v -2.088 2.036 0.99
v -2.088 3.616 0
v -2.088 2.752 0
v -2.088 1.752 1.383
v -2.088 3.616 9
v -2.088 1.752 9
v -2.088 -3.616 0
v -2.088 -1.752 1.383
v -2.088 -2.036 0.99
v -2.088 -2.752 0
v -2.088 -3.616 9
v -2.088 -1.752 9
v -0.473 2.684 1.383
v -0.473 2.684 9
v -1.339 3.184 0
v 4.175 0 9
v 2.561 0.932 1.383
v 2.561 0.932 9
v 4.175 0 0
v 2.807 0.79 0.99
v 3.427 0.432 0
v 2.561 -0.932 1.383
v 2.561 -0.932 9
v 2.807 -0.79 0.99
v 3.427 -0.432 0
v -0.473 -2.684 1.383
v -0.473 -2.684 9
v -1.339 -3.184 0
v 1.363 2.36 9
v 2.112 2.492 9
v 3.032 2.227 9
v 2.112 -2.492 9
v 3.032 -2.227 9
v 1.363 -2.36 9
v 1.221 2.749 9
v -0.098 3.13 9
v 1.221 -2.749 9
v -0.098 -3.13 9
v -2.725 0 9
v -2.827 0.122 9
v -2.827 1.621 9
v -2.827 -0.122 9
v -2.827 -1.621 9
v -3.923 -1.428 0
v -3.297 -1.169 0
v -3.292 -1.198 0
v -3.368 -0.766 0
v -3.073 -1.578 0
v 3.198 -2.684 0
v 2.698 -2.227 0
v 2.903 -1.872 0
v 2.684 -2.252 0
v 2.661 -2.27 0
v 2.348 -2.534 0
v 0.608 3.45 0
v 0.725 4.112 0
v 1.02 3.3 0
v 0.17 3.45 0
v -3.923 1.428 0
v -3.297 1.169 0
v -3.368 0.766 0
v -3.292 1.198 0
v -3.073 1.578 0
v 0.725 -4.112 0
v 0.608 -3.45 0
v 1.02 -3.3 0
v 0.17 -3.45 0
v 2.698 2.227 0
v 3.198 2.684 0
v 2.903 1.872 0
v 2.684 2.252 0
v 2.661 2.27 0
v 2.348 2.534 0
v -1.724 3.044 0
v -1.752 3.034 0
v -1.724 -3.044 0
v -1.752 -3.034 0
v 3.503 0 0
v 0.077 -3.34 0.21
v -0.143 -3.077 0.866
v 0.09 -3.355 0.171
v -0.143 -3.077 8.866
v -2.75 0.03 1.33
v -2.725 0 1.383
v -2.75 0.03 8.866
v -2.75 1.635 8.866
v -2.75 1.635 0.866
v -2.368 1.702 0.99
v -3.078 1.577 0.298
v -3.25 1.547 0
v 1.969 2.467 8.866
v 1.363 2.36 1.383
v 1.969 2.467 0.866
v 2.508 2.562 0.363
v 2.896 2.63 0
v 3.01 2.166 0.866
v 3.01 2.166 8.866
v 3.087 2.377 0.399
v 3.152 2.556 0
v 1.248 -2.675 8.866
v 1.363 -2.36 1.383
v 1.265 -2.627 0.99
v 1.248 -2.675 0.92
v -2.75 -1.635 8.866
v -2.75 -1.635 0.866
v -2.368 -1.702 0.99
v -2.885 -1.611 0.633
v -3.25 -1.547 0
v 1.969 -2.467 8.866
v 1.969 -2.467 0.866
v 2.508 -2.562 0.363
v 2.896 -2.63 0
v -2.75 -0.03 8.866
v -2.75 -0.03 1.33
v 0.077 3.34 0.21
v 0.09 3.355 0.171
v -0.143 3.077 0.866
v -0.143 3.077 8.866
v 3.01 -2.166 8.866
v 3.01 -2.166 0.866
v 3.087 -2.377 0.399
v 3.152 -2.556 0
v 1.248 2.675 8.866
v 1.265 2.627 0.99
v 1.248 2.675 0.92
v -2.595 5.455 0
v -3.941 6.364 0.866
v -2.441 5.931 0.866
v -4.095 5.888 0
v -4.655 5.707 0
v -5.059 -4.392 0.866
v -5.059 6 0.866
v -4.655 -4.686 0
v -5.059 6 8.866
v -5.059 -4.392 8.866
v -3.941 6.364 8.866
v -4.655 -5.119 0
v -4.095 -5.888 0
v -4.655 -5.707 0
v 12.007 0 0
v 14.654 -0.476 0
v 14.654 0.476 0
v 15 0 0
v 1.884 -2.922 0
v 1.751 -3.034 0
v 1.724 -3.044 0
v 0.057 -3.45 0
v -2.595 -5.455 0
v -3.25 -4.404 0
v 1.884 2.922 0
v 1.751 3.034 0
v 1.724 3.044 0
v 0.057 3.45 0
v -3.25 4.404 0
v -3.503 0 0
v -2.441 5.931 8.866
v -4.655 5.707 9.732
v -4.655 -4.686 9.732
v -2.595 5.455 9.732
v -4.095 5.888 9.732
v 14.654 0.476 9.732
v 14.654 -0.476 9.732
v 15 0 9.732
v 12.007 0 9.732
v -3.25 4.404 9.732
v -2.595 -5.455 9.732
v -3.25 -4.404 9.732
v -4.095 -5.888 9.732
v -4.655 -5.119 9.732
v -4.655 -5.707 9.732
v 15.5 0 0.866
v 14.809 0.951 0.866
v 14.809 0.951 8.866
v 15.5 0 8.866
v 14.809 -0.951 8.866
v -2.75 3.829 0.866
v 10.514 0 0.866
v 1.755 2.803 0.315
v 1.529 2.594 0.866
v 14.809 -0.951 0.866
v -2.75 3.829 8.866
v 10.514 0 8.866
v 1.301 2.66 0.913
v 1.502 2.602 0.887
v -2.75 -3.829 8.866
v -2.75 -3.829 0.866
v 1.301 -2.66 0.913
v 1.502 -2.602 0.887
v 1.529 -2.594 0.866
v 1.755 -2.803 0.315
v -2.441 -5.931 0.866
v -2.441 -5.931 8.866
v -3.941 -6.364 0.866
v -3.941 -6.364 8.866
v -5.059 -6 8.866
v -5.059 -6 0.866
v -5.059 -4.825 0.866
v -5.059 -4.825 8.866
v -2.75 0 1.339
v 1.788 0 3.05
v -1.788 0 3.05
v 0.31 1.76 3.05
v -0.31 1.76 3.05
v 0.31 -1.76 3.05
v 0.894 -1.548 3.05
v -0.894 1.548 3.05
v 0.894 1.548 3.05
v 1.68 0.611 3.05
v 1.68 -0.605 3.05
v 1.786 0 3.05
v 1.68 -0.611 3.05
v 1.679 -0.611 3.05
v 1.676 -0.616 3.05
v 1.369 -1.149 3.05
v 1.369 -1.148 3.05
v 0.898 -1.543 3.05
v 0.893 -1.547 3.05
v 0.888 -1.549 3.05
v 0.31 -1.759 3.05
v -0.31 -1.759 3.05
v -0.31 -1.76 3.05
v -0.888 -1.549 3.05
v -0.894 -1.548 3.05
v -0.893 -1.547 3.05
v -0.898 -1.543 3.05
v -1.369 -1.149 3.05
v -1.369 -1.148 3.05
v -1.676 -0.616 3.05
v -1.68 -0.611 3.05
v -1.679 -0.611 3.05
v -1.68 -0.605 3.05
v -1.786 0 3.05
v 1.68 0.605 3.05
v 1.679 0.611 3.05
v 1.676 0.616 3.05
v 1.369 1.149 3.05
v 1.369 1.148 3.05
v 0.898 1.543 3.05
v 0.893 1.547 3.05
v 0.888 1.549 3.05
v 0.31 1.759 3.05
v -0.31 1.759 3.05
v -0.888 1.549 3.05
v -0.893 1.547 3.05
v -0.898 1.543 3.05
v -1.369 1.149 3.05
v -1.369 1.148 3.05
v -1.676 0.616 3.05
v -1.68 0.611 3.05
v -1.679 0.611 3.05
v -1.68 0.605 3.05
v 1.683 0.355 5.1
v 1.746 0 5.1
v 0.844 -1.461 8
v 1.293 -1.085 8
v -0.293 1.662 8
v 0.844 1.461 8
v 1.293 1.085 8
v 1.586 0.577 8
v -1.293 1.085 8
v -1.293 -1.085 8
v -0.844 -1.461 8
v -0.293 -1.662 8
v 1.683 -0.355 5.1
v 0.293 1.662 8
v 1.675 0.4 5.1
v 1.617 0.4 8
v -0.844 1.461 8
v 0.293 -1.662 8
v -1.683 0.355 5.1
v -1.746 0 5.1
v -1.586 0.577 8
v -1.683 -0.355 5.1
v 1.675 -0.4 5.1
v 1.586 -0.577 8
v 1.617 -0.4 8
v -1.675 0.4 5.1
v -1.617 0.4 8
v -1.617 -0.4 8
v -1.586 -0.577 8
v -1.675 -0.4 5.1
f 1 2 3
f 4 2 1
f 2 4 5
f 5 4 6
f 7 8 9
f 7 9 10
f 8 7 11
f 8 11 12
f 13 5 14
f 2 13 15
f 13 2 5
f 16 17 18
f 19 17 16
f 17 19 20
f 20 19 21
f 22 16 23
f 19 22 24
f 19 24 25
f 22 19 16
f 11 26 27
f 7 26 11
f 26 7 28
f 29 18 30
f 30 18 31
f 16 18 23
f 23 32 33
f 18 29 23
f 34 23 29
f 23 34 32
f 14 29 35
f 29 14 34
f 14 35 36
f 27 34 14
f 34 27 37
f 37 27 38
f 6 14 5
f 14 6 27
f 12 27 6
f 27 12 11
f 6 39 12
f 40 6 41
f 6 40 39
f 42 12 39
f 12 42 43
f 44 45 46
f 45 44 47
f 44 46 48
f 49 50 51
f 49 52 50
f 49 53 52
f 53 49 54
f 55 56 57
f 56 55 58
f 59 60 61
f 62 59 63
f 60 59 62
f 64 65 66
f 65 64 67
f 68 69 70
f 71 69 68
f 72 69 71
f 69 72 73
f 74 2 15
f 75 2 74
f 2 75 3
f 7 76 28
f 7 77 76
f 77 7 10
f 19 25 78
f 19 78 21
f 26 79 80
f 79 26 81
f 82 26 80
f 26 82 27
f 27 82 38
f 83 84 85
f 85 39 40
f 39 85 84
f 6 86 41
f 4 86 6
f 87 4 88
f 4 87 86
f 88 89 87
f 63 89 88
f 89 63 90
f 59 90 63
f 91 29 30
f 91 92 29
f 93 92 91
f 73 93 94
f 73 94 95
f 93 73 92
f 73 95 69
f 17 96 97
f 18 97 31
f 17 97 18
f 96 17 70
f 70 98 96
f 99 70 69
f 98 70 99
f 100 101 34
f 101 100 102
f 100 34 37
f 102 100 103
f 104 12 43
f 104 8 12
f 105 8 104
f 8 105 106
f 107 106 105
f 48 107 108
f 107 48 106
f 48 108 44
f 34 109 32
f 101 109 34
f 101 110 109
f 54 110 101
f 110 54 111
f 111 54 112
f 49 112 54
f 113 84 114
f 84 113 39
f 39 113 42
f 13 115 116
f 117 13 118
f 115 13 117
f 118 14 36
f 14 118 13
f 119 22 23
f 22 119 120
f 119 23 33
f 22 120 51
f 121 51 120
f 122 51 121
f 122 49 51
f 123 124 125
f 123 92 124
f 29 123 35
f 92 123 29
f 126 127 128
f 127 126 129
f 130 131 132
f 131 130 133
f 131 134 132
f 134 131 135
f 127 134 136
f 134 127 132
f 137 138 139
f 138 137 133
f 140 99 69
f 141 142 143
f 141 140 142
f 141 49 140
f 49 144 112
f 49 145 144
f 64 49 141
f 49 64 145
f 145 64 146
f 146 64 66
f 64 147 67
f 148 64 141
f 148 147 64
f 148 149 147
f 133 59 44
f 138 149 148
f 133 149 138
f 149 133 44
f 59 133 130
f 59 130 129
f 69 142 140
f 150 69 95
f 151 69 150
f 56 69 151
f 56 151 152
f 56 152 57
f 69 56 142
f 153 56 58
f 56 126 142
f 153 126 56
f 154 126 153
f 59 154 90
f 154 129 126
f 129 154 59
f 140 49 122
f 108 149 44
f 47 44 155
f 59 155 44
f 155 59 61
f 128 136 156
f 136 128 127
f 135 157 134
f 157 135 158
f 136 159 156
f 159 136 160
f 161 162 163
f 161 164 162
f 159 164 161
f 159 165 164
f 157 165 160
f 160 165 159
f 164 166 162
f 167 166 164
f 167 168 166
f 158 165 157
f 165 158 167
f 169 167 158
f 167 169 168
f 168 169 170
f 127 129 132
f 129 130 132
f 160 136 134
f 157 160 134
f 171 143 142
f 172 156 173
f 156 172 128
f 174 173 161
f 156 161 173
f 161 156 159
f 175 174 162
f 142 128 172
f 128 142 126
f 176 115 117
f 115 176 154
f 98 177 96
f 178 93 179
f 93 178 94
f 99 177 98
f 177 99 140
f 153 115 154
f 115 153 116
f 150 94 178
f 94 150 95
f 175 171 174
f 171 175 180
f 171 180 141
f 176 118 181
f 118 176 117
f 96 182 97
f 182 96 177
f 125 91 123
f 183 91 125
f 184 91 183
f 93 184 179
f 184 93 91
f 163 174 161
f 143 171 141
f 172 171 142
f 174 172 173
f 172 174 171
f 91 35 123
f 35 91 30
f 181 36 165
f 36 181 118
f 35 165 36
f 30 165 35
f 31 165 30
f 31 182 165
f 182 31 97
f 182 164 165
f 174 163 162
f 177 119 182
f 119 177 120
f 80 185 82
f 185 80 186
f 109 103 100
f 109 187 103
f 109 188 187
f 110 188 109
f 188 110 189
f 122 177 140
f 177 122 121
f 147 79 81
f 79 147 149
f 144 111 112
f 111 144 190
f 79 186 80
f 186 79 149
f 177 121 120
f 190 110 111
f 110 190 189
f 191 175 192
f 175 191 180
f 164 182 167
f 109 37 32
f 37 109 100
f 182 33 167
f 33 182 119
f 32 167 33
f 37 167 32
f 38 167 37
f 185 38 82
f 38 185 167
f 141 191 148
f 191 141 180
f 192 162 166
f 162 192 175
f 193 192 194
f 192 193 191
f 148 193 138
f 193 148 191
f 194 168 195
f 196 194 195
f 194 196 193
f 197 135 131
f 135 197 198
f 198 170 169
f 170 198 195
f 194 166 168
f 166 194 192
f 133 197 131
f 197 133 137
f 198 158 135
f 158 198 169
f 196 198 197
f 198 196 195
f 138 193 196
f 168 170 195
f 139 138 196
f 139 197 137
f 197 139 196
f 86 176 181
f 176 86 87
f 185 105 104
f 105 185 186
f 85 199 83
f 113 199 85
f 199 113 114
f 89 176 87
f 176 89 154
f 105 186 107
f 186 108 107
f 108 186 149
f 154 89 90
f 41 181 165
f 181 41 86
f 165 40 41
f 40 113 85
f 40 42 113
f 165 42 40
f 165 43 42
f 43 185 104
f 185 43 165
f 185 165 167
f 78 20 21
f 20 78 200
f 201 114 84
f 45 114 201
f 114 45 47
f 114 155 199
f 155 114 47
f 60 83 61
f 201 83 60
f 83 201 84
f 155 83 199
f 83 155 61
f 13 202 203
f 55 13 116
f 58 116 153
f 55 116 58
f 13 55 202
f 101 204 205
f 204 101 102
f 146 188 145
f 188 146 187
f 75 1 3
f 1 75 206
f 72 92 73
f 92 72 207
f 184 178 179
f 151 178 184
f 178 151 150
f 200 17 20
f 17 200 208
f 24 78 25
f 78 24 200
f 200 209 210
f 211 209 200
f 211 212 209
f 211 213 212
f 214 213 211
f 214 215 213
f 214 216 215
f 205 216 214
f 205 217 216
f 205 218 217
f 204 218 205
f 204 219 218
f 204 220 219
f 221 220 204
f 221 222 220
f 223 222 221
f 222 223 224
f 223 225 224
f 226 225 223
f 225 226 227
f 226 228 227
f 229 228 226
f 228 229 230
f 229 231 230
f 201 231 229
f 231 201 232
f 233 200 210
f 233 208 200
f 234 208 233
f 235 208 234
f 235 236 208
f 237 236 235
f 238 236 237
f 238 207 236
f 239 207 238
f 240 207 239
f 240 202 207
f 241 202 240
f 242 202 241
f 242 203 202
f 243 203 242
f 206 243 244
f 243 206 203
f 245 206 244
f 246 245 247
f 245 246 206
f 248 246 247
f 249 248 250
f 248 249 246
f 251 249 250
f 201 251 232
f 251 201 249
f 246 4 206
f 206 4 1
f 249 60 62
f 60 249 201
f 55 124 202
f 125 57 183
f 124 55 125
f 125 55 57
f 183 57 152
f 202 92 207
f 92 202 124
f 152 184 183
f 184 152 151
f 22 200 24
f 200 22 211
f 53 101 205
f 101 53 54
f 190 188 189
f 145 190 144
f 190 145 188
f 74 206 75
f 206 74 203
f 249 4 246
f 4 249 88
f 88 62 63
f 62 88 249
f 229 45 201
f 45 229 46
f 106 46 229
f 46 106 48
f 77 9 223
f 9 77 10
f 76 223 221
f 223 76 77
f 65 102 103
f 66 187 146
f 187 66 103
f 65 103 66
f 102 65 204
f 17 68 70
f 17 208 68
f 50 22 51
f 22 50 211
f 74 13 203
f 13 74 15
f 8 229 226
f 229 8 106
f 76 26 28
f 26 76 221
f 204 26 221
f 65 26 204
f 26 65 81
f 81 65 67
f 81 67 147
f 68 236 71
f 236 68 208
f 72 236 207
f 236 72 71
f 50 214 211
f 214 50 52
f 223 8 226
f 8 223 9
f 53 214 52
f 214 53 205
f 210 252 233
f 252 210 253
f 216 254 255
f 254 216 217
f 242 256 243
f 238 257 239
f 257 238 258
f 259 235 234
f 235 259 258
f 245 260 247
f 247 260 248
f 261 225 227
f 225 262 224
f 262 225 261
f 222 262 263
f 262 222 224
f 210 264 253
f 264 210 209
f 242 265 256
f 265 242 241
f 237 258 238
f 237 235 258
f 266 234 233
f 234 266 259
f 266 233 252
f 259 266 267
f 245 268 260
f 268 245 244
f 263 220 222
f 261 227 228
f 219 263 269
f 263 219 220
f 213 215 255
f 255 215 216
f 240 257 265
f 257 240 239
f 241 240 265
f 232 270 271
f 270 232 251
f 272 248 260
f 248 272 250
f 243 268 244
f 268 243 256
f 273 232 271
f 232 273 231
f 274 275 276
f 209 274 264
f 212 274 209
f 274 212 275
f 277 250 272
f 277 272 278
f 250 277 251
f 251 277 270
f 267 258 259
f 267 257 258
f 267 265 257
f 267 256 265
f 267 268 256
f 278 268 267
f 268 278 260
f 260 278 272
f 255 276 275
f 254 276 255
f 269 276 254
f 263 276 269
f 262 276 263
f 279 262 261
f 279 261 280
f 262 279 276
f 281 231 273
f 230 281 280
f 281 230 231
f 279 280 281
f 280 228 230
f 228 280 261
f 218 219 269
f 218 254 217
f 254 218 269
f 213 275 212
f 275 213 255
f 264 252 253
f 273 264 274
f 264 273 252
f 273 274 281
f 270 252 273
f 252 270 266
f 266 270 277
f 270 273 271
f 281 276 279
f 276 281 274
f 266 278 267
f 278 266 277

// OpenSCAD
in = 25.4;

shaft_rad = .25*in/2;
slot = 1;
slot_height = 3;
height = 5;
inset_height = 3;

rad = 23/2;
slop = .2;
num_splines = 18;

spline_shaft();


module spline_shaft(num_points=3){
    min_rad = 1;
    difference(){
        union(){
            //knob
            //minkowski(){
                for(i=[0:360/(num_points*num_points):359/num_points]) rotate([0,0,i]){
                    cylinder(r=shaft_rad+1, h=height+inset_height+min_rad, $fn=num_points);
                    echo(i);
                }
                //sphere(r=min_rad);
            //}
            //pointer
            translate([0,0,min_rad-.1337]) minkowski(){
                translate([2,0,0]) scale([1,.5,1]) difference(){
                    cylinder(r=rad+1, h=height+inset_height, $fn=3);
                    cylinder(r=rad, h=height+inset_height, $fn=3);
                }
                sphere(r=min_rad);
            }
        }
        
        //extend it
        difference(){
            union(){
                translate([0,0,-.15]) cylinder(r1=shaft_rad/2+2, r2=shaft_rad/2+slop, h=inset_height+.2, $fn=num_splines);
                translate([0,0,inset_height]) cylinder(r1=shaft_rad/2+slop, r2=shaft_rad/2+slop/2, h=height, $fn=num_splines);
            }
            
            //key
            translate([0,0,height+inset_height - slot_height/2+.1]) cube([shaft_rad*2, slot-slop, slot_height], center=true);
        }
    }
}
